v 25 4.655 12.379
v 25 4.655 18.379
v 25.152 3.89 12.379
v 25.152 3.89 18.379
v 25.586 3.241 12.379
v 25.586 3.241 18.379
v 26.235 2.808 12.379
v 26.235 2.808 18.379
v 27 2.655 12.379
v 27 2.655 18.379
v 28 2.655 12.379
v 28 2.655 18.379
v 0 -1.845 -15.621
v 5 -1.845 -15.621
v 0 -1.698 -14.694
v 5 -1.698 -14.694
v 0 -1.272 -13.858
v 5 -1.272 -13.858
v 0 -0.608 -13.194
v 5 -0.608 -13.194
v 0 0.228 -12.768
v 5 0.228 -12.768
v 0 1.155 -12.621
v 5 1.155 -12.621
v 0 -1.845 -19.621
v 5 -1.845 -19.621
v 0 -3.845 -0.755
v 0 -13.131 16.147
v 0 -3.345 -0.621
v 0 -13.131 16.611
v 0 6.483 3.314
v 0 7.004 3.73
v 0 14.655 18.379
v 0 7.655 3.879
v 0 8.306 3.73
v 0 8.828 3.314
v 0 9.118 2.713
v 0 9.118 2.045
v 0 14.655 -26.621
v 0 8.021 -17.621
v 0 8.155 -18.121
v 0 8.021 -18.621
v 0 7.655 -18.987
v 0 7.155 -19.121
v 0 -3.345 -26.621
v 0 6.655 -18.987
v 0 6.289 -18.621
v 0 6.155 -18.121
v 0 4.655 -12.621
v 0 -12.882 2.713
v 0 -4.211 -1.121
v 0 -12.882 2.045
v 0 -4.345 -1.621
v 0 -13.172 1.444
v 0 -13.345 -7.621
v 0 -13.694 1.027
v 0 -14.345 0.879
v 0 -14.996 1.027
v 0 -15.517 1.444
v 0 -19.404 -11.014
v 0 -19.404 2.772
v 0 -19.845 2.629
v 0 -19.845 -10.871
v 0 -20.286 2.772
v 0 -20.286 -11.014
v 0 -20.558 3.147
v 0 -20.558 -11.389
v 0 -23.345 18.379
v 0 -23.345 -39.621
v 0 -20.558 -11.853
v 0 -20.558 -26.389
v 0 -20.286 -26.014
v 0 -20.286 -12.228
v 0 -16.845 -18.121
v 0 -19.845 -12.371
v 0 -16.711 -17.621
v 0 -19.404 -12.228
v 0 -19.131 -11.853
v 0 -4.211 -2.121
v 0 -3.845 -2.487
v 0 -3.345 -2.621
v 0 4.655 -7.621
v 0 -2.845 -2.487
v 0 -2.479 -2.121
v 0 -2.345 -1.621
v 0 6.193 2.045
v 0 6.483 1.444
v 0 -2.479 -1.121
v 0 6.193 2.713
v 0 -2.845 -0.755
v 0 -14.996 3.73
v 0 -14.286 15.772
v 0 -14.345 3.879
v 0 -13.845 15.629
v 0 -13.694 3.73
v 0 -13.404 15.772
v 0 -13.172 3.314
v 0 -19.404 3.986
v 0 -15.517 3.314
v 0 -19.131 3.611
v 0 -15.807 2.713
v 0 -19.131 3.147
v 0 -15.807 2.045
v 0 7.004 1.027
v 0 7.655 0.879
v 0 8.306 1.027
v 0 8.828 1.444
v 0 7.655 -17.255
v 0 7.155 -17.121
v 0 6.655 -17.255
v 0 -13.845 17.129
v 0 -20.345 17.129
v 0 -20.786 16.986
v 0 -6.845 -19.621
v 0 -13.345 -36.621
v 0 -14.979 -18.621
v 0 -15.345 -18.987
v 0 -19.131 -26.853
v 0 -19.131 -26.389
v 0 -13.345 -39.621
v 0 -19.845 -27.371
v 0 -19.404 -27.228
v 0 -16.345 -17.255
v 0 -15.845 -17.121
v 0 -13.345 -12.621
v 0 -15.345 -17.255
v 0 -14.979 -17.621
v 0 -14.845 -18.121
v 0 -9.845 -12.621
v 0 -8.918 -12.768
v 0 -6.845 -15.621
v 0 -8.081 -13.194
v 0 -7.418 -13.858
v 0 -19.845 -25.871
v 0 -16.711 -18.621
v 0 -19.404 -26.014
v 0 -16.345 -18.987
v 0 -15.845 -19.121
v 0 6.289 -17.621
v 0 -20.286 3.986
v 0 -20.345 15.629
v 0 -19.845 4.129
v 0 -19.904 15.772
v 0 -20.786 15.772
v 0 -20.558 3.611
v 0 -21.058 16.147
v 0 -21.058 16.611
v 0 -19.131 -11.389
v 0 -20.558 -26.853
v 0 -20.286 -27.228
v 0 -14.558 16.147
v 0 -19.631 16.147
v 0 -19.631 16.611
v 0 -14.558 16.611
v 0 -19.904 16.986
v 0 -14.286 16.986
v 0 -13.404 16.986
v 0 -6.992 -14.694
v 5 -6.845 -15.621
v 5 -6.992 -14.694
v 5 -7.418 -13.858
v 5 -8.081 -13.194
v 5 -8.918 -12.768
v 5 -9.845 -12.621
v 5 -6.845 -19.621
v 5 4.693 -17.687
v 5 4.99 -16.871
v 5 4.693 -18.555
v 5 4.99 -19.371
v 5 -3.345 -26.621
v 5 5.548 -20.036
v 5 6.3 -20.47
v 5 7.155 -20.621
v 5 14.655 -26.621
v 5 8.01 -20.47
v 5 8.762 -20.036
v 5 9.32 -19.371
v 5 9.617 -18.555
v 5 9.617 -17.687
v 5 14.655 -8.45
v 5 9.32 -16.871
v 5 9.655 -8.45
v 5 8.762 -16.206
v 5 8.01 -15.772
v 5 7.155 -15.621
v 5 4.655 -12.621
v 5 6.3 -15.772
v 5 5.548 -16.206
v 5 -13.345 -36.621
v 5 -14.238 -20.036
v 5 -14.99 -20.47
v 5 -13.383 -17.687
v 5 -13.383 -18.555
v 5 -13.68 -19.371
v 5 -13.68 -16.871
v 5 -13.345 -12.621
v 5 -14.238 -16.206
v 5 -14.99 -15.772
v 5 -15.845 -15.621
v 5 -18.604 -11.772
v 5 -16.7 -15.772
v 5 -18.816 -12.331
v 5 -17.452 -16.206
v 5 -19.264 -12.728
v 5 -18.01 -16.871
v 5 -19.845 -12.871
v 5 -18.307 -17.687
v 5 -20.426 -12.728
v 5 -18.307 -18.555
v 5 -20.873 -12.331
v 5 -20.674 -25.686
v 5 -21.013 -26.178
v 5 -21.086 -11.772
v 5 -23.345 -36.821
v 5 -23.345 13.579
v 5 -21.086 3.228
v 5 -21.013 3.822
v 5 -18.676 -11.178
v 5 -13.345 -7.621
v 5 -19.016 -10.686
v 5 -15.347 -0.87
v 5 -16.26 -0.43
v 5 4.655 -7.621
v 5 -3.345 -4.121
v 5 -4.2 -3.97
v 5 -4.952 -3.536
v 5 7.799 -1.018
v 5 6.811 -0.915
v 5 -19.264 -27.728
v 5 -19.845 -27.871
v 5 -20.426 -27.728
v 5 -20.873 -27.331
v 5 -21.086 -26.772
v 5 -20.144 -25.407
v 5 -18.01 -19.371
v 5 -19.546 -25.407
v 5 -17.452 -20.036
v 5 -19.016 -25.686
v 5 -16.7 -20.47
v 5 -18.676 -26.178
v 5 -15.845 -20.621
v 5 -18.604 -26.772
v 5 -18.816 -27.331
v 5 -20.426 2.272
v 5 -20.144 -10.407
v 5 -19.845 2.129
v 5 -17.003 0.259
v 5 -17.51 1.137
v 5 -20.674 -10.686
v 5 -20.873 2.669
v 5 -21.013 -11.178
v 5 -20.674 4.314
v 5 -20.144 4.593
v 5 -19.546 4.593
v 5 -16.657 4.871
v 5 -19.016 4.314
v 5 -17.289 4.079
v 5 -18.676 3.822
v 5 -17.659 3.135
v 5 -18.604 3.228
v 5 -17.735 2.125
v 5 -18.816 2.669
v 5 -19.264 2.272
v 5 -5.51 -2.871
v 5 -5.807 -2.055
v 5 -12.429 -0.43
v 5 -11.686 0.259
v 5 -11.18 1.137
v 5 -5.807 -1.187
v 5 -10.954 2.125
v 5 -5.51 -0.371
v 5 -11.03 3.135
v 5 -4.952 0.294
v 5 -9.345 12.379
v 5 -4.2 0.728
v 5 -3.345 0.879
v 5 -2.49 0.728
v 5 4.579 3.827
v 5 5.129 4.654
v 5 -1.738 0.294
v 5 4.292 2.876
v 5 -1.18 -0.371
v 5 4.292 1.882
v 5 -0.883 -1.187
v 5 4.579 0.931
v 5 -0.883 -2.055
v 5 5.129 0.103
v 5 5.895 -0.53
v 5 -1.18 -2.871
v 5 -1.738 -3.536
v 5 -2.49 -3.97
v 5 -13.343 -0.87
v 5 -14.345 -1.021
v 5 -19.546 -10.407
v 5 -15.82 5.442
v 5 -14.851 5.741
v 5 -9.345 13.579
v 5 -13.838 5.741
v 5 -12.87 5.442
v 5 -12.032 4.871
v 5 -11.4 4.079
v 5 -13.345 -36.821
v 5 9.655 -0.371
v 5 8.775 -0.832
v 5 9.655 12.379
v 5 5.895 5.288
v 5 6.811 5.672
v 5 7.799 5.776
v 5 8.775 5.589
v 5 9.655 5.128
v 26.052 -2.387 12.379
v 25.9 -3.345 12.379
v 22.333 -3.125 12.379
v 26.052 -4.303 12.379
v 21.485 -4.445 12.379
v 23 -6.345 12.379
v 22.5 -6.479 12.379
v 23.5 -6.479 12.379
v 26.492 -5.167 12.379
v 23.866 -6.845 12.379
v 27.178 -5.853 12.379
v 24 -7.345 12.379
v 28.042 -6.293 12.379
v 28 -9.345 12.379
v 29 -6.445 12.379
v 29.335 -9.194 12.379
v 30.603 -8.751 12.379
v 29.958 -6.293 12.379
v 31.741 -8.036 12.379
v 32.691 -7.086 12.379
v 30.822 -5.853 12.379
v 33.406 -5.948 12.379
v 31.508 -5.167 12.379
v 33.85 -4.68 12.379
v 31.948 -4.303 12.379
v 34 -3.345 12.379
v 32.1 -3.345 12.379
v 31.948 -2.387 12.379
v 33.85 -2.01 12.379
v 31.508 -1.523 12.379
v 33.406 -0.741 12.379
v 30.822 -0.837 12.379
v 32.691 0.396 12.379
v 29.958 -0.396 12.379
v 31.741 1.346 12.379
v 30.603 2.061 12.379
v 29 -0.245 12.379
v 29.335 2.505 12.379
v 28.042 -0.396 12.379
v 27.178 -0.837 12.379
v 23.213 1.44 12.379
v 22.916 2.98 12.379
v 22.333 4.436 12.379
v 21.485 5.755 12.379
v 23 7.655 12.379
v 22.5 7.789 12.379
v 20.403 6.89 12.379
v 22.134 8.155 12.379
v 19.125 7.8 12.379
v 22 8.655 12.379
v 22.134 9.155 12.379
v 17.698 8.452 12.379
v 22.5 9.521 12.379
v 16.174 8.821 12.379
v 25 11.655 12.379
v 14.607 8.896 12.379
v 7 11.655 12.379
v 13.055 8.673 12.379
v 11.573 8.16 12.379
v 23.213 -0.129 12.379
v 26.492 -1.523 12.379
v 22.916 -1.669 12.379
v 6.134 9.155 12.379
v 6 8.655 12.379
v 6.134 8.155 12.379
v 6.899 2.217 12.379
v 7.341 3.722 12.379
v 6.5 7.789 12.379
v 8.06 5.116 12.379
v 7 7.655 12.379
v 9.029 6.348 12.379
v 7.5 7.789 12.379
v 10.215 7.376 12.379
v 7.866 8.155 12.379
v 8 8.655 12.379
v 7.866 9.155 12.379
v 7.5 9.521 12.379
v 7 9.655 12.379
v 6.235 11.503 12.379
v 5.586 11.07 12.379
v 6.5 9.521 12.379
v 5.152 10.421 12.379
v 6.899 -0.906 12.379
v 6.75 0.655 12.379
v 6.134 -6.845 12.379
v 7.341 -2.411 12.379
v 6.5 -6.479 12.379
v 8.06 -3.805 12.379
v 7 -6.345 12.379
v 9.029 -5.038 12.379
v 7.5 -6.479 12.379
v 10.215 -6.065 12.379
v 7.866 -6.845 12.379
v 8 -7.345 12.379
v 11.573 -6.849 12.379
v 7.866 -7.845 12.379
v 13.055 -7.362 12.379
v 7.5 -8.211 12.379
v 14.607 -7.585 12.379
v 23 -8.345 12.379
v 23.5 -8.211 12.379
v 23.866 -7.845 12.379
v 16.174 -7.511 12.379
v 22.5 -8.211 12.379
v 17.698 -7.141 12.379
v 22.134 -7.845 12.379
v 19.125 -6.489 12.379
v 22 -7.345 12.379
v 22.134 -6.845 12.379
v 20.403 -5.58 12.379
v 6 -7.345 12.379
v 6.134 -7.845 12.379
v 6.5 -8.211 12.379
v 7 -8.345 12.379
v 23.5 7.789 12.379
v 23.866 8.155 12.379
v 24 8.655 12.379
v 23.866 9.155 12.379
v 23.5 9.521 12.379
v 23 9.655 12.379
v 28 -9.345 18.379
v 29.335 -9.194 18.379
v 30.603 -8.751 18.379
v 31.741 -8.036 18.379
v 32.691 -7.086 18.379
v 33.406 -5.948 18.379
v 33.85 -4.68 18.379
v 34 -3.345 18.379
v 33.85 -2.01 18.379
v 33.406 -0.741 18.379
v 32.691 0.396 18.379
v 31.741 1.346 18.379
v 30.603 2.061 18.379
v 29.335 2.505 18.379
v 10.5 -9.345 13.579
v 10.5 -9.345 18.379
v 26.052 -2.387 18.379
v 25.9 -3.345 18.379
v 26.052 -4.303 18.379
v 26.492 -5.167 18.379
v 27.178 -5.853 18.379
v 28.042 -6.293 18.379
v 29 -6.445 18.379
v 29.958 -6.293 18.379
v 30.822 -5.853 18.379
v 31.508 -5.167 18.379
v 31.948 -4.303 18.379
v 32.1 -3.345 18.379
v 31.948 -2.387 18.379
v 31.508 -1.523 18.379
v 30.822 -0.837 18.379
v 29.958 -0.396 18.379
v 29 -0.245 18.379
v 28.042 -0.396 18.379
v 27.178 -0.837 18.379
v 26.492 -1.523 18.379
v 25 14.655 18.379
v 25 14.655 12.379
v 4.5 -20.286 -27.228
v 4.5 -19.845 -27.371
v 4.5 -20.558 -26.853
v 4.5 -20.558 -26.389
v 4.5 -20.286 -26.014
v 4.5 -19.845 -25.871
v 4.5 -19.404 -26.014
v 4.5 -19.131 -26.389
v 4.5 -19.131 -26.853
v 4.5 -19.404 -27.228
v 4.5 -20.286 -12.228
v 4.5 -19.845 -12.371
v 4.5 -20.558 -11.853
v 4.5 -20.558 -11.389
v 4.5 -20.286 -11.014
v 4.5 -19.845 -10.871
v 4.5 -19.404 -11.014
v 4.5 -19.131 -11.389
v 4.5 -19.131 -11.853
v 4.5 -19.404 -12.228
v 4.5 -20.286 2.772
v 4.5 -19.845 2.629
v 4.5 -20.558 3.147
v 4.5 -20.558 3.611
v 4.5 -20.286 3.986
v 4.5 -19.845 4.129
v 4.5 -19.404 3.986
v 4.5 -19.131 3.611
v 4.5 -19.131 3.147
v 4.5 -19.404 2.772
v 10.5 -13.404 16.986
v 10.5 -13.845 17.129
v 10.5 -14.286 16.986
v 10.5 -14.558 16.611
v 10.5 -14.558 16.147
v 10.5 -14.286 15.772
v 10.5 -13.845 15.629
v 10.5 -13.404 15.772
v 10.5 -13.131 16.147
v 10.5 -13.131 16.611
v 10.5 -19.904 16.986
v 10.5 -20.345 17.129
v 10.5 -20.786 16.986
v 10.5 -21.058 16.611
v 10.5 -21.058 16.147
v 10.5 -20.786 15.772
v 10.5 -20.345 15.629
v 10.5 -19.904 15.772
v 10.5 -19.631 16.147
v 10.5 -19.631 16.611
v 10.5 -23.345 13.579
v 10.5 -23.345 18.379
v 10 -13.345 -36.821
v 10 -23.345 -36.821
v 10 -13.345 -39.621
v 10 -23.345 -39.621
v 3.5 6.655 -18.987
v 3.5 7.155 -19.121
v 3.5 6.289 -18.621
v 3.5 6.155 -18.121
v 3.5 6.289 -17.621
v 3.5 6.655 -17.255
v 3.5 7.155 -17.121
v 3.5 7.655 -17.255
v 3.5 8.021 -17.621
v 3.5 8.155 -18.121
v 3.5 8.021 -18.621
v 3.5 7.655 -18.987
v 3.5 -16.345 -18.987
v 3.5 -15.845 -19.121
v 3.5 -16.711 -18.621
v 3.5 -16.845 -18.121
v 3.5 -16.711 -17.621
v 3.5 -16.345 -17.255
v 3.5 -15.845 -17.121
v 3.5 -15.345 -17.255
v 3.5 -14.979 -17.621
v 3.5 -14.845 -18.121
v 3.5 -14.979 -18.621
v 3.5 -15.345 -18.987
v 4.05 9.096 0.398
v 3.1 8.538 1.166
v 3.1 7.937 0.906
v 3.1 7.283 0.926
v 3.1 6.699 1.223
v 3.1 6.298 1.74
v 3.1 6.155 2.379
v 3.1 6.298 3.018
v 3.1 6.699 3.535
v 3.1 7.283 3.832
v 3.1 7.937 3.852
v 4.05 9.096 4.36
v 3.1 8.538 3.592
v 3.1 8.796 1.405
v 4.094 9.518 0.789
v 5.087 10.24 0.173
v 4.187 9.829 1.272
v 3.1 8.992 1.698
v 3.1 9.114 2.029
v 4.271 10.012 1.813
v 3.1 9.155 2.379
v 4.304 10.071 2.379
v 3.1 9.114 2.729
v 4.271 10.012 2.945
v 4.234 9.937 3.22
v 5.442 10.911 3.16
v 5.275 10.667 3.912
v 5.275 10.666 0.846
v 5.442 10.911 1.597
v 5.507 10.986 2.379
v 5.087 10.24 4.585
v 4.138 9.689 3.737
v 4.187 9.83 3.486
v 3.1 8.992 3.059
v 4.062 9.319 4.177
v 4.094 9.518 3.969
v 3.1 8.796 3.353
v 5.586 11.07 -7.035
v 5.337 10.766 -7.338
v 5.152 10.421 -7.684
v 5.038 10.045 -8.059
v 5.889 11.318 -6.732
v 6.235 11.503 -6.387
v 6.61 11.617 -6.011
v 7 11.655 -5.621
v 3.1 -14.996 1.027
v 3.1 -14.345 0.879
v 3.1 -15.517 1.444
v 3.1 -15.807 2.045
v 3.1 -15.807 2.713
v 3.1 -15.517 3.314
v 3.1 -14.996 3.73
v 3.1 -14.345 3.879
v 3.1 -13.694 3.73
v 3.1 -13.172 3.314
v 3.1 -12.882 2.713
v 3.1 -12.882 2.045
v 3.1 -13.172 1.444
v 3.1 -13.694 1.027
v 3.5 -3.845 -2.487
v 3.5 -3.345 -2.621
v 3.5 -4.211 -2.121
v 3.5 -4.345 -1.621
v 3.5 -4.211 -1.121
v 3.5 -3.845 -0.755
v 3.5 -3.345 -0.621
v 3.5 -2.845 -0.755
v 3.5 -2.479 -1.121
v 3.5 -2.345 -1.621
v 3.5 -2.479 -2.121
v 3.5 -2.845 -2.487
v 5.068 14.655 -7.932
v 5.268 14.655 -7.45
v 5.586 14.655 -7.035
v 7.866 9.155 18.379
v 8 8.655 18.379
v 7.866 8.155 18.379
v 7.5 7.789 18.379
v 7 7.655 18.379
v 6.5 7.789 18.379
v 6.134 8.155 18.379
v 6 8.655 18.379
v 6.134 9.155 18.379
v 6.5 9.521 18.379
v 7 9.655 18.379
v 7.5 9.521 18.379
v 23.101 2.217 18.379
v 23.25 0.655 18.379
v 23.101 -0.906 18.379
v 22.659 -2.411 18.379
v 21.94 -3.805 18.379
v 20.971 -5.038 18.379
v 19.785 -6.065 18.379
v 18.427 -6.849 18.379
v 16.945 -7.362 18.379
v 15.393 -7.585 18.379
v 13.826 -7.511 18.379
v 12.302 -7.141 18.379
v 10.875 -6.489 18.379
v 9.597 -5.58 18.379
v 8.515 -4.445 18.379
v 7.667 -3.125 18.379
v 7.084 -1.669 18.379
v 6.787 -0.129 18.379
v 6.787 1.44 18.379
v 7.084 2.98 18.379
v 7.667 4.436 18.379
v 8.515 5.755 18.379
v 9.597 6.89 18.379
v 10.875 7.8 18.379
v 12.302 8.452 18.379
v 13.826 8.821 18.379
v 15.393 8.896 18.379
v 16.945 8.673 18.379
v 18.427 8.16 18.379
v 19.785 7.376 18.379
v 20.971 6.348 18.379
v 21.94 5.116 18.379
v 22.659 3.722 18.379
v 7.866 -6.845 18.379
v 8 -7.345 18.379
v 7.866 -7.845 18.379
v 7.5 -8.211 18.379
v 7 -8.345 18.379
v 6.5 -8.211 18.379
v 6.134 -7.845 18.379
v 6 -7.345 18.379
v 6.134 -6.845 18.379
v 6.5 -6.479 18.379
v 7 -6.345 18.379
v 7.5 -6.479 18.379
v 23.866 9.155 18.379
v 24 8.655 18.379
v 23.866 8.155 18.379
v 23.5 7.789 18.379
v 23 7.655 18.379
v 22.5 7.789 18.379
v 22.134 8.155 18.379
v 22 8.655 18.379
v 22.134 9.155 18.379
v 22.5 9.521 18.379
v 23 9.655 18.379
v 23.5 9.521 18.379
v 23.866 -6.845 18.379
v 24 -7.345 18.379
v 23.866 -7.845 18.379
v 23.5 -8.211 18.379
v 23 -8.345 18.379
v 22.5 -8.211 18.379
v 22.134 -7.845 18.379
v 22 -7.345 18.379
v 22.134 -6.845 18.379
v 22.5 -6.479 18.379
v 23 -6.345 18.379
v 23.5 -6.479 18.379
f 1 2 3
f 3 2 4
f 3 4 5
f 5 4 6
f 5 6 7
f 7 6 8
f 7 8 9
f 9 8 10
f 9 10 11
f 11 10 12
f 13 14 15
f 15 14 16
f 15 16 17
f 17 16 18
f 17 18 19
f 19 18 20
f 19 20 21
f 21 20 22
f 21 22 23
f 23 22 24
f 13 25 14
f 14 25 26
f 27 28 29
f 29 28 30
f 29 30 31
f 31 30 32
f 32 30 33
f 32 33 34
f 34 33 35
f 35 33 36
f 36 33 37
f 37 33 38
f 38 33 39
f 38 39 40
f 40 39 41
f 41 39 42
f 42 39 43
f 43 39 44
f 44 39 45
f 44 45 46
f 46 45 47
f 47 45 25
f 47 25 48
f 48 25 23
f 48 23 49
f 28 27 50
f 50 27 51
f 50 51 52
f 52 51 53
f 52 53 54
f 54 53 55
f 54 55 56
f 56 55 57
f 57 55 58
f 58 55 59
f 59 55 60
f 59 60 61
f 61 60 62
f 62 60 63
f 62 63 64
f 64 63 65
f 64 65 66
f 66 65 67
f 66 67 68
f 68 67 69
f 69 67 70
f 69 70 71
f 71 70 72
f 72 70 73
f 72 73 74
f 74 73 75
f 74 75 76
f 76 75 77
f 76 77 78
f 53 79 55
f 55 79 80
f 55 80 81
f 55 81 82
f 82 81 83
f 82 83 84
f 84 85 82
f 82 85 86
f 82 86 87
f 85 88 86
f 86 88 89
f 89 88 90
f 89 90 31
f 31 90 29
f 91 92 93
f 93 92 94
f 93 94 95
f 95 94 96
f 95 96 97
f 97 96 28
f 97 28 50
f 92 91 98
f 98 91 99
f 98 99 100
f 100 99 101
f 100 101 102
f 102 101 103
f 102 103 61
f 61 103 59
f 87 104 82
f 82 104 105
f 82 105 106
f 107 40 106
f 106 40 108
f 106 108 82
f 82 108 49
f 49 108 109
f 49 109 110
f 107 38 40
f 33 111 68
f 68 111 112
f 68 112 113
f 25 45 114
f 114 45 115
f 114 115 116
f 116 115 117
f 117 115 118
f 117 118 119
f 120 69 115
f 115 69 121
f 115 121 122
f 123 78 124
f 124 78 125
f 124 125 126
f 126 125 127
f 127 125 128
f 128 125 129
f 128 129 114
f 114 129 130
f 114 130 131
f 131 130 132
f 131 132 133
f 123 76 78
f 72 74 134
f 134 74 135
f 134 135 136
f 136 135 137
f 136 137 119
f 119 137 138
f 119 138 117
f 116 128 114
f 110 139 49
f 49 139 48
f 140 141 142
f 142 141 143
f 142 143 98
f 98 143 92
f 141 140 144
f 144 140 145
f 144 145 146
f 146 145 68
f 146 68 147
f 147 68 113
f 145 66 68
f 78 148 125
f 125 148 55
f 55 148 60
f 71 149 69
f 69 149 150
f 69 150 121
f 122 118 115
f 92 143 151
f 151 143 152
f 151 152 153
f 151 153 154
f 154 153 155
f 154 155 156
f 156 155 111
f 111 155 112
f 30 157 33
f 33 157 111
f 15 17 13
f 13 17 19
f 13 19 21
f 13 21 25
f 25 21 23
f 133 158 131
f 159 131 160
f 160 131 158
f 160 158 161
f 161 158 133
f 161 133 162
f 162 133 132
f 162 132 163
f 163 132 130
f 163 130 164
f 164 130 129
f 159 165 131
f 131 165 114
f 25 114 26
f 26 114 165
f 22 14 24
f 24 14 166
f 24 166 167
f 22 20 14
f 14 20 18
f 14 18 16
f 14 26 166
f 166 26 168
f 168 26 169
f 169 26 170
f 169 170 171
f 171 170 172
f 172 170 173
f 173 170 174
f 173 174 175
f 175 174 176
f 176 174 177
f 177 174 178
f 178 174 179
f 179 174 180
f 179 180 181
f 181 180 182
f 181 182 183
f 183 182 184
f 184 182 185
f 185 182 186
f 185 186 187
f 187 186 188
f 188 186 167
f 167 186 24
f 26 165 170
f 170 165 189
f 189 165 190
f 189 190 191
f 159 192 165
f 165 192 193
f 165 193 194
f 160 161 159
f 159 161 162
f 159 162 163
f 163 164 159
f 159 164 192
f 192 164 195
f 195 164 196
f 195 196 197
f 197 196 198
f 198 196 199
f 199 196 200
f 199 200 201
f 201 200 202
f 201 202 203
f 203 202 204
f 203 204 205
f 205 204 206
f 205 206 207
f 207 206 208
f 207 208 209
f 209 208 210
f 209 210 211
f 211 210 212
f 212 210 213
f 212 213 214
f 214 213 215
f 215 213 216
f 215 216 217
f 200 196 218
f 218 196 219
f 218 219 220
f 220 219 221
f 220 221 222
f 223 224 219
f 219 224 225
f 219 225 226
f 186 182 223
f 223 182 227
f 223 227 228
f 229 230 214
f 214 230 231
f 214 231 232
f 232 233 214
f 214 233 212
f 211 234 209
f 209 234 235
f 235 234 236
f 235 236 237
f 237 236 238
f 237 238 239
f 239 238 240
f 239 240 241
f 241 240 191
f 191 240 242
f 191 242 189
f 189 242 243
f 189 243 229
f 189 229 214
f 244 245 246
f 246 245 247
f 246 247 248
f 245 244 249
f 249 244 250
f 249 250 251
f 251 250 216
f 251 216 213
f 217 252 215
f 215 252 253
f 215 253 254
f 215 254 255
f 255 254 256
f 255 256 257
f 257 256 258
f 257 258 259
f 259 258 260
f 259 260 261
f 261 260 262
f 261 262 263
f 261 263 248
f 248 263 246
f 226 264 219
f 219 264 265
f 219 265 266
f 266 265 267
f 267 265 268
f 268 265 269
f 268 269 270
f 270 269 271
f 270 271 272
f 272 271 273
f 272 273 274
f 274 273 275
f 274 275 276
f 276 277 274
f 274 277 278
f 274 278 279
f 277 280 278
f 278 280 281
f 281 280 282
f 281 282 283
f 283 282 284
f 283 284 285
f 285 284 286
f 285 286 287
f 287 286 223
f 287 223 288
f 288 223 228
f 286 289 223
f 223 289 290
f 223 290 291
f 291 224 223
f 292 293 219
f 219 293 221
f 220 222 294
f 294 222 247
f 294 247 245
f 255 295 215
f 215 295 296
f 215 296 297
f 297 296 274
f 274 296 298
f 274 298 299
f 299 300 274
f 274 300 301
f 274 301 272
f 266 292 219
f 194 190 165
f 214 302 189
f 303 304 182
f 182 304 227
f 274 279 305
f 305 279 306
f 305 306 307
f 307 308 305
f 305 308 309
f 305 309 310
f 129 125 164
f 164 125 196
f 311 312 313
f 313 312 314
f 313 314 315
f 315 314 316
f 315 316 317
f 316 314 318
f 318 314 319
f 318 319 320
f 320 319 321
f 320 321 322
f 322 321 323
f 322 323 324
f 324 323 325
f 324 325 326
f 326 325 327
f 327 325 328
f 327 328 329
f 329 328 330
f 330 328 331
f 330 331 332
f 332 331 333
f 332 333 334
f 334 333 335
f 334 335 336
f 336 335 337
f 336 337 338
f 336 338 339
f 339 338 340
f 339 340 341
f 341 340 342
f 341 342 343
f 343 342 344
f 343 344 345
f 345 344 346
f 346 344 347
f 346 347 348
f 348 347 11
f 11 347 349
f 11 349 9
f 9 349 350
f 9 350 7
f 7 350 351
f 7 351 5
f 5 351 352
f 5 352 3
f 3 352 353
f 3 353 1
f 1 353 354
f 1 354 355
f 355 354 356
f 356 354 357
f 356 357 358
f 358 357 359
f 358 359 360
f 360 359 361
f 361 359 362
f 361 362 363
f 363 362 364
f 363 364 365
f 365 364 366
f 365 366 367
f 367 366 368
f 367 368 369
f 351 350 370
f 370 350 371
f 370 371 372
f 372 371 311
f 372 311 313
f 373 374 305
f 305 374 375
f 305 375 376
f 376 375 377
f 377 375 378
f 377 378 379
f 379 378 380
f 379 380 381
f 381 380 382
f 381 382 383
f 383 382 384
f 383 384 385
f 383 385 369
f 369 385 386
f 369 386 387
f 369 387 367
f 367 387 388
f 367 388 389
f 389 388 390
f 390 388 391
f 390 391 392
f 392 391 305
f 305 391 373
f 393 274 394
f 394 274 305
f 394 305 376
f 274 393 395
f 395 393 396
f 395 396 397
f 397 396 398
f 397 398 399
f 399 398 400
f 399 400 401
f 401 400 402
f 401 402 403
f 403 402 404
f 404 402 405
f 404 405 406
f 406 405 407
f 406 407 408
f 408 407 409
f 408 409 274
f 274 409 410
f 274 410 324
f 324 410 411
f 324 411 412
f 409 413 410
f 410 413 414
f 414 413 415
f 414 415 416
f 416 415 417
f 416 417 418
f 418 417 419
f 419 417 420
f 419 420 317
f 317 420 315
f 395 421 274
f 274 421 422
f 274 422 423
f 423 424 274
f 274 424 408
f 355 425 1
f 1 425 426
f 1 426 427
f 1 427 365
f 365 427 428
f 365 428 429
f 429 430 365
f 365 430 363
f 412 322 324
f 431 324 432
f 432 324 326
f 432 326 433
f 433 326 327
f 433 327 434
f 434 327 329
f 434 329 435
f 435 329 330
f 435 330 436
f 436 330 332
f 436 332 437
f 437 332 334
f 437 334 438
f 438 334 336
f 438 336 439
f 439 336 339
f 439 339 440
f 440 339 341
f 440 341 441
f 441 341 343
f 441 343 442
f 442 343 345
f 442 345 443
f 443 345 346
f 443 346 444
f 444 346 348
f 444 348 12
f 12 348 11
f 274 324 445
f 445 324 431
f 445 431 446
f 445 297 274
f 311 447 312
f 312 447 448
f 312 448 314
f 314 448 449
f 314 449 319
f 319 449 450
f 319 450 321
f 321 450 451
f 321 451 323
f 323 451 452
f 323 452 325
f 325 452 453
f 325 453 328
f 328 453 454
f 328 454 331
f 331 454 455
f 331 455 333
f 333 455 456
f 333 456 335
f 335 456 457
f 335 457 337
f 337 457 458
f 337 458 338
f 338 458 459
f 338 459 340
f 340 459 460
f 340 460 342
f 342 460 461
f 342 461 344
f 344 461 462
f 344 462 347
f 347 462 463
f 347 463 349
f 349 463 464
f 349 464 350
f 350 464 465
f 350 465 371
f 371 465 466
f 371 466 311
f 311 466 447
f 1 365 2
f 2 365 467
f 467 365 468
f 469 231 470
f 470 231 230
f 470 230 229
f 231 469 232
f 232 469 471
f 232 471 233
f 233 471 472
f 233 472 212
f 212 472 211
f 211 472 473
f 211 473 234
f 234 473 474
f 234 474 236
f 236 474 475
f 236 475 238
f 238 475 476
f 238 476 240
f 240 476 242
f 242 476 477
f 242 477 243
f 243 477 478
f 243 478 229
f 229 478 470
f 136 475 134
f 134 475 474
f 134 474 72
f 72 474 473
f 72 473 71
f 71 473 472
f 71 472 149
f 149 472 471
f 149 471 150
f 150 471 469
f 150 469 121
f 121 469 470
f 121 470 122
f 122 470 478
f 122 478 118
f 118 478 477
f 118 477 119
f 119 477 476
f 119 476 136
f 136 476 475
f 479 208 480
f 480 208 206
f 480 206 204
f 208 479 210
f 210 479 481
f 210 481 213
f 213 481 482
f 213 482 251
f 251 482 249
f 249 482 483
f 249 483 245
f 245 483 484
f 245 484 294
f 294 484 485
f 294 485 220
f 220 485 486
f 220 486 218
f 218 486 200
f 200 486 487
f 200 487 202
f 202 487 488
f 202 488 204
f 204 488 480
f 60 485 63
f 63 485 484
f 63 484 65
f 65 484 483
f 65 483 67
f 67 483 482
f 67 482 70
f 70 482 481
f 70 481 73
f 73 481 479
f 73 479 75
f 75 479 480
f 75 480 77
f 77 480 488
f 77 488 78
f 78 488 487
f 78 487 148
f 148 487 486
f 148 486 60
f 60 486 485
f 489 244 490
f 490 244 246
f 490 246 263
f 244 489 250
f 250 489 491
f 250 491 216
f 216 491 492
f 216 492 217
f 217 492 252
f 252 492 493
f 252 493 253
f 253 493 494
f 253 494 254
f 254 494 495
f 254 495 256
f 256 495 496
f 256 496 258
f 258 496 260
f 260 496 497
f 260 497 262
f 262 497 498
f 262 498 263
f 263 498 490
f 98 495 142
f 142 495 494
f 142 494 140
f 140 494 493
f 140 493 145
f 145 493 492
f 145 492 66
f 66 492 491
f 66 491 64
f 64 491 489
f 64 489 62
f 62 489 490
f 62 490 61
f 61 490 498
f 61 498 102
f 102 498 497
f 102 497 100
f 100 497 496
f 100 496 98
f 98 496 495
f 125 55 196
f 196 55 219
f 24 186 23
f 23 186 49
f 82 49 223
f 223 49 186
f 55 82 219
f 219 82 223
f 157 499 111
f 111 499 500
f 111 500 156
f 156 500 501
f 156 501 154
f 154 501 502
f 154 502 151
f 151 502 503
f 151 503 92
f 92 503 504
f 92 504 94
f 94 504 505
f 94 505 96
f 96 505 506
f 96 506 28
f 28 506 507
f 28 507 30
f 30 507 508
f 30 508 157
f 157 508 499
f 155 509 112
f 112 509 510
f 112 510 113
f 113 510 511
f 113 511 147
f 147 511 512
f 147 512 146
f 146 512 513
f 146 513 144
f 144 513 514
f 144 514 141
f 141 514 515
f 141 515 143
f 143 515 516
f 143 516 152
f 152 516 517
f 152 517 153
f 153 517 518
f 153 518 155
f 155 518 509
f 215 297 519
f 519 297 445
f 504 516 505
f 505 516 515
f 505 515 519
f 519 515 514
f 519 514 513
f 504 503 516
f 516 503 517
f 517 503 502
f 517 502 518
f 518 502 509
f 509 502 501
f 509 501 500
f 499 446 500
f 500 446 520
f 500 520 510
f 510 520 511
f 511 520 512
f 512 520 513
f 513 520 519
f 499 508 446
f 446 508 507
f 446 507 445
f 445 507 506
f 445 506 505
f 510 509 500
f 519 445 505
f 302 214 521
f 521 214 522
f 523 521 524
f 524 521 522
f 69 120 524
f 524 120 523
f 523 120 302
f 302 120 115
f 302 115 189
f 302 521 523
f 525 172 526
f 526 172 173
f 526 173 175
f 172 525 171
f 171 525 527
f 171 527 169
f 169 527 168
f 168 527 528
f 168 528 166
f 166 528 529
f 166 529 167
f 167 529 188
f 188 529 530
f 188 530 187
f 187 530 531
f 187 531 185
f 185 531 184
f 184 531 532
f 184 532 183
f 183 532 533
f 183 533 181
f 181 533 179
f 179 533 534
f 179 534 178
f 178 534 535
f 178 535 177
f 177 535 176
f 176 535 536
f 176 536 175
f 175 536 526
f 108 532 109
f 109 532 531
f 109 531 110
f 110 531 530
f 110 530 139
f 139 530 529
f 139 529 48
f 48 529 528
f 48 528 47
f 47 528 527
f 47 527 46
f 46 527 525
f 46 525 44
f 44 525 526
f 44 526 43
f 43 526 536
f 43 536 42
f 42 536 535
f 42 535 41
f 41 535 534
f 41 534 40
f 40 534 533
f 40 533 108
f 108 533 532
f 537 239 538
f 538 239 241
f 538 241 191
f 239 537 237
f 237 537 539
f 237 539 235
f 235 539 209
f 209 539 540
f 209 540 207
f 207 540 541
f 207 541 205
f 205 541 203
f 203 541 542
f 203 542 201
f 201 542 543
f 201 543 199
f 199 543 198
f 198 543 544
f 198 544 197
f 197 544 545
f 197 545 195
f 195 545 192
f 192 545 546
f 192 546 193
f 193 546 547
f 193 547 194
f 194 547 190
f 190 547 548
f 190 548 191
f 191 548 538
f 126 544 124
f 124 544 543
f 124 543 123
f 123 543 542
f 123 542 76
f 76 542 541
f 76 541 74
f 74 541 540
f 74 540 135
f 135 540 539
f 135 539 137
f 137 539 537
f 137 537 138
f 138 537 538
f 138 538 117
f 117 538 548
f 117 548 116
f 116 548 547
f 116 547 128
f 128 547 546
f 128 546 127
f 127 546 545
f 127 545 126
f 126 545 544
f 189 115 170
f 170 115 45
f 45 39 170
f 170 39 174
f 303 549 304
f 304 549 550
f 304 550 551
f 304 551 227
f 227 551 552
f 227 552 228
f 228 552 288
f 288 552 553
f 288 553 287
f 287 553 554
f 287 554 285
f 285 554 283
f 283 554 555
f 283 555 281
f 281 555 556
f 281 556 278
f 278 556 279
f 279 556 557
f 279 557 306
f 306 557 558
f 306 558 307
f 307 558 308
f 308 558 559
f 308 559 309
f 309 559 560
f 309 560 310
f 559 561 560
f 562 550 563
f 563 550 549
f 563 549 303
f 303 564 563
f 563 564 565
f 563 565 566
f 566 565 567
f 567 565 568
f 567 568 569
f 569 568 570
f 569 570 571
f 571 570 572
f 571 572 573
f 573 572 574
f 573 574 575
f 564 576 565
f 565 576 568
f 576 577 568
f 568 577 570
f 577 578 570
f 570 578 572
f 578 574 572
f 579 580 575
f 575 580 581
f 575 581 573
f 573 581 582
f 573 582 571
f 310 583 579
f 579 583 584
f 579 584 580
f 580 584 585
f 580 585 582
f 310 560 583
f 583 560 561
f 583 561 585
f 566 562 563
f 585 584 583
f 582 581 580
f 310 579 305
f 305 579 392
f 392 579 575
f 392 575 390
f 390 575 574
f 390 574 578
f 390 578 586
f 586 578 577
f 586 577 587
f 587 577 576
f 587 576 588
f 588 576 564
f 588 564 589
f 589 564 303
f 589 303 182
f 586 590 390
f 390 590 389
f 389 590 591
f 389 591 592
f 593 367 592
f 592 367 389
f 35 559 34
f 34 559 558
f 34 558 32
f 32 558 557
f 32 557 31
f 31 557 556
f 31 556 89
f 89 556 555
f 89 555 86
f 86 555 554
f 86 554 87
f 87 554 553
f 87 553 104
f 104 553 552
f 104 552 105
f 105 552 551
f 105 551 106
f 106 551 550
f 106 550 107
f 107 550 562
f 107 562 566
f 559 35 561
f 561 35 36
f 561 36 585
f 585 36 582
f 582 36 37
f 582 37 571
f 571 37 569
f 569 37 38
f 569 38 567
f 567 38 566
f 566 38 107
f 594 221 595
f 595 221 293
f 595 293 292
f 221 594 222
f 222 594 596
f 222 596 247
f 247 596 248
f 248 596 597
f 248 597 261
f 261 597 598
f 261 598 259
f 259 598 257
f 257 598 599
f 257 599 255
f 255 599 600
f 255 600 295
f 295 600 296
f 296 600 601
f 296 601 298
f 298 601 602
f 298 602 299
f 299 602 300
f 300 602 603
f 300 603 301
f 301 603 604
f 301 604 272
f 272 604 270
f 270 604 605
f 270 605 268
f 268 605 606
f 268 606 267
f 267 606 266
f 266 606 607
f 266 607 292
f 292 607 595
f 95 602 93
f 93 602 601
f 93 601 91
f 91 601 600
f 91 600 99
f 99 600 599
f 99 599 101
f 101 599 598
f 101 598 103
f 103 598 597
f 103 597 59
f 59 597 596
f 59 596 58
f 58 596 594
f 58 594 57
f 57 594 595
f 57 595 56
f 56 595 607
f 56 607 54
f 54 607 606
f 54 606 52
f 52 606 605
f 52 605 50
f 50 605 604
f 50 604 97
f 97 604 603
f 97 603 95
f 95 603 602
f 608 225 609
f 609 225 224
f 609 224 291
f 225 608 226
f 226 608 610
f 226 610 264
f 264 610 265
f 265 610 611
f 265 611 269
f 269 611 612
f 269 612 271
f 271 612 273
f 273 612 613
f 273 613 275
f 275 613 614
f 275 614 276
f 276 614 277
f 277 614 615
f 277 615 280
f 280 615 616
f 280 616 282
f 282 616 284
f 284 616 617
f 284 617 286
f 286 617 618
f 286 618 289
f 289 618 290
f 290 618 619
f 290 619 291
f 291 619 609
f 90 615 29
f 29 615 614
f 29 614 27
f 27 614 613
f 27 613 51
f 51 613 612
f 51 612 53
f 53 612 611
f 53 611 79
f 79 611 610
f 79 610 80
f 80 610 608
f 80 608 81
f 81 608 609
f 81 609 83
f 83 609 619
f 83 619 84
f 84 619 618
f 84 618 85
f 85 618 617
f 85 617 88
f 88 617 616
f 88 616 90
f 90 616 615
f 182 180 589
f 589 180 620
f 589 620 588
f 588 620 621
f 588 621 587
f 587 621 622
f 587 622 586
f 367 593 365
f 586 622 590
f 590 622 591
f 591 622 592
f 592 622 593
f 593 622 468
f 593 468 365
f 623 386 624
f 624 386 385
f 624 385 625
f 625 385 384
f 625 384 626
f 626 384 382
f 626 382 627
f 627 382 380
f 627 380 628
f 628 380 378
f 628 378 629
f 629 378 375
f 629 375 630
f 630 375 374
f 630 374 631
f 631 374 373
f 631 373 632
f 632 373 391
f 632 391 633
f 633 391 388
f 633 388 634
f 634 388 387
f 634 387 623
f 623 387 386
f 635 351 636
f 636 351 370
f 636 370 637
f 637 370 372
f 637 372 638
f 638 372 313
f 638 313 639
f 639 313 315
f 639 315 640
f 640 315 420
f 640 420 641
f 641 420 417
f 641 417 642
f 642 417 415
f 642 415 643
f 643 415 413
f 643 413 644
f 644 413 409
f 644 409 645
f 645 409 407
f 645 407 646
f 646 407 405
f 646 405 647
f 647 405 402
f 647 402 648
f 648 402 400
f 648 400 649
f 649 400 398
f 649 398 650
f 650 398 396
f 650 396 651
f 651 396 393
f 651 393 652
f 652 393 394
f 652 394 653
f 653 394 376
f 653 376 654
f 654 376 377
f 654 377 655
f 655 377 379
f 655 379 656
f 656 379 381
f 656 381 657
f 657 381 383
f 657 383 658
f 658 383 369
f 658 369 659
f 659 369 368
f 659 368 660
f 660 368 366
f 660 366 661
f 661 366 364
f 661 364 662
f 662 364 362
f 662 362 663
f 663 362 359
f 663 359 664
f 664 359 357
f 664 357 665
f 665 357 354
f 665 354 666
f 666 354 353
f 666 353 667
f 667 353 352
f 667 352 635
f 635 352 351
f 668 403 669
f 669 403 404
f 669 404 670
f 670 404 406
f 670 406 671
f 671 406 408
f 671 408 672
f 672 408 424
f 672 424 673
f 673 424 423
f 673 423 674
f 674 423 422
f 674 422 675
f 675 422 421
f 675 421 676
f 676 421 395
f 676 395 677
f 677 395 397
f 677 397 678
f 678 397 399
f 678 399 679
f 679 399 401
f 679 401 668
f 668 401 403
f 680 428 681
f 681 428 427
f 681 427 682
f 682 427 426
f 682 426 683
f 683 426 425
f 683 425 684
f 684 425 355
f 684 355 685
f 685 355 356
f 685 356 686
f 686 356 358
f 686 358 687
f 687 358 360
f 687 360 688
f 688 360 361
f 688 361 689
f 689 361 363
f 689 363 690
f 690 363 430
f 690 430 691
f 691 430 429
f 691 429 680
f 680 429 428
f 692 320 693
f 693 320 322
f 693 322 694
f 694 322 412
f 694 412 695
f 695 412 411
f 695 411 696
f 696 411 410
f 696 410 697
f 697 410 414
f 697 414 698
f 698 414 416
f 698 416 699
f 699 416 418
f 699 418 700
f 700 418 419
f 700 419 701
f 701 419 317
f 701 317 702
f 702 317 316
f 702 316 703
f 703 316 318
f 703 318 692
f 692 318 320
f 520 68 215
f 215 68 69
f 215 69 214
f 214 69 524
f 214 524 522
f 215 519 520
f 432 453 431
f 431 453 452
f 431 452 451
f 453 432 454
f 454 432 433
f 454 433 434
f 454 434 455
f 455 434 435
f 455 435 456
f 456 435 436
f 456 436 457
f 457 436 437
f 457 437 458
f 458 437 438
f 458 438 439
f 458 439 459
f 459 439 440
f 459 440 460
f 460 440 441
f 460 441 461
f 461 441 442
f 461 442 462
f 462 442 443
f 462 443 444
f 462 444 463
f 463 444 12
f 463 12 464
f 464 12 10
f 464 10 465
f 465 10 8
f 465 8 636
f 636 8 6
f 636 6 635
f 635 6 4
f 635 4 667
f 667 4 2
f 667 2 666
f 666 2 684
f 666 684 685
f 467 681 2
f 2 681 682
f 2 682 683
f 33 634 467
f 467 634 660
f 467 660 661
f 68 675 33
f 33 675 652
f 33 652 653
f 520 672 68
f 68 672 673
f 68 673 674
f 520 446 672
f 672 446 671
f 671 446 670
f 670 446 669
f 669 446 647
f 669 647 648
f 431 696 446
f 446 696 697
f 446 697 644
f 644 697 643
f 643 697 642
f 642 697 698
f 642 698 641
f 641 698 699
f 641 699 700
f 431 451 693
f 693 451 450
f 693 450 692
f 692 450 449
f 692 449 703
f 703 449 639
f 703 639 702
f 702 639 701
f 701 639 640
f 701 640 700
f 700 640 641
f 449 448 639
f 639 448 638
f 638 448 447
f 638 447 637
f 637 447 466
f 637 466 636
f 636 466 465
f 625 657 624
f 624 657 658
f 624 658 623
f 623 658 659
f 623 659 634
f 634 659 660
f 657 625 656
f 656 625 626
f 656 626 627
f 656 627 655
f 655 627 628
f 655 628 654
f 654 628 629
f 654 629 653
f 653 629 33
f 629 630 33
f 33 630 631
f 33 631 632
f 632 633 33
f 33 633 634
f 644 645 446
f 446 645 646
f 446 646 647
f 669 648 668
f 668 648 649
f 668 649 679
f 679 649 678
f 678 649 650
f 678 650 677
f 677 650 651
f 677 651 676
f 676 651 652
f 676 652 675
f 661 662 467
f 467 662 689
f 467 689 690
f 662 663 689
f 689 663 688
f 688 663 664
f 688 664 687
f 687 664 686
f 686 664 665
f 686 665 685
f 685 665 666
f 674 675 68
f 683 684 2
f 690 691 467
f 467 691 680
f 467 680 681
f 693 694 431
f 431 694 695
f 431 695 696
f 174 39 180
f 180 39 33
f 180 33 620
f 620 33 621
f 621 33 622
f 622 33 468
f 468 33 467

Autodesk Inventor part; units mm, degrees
ref_plane "YZ Plane" through (0, 0, 0) normal (1, 0, 0) x (0, 1, 0)
ref_plane "XZ Plane" through (0, 0, 0) normal (0, 1, 0) x (-1, 0, 0)
ref_plane "XY Plane" through (0, 0, 0) normal (0, 0, 1) x (1, 0, 0)
sketch "Sketch1" plane through (0, 0, 0) normal (1, 0, 0) x (0, 1, 0)
  line L0 (-23.3447, 18.3788) -> (14.6553, 18.3788)
  line L1 (14.6553, 18.3788) -> (14.6553, -36.6212)
  line L2 (14.6553, -36.6212) -> (-23.3447, -36.6212)
  line L3 (-23.3447, -36.6212) -> (-23.3447, 18.3788)
  point P0 (0, 0)
  dimension "d0" = 38
  dimension "d1" = 55
extrude "Extrusion1" add sketch "Sketch1" along normal blind 5
sketch "Sketch2" plane through (5, 0, 0) normal (1, 0, 0) x (0, 0, -1)
  line L0 (36.6212, 14.6553) -> (-18.3788, 14.6553) projected
  line L1 (-18.3788, 14.6553) -> (-12.3788, 14.6553)
  line L2 (-12.3788, 14.6553) -> (-12.3788, -9.3447)
  line L3 (-12.3788, -9.3447) -> (-18.3788, -9.3447)
  line L4 (-18.3788, -9.3447) -> (-18.3788, 14.6553)
  point P0 (0, 0)
  dimension "d4" = 24
  dimension "d5" = 6
extrude "Extrusion2" add sketch "Sketch2" along normal blind 20
sketch "Sketch3" plane through (5, -9.3447, 12.3788) normal (0, 0, -1) x (-1, 0, 0)
  circle A0 centre (-10, 10) radius 8.25
  line L0 (-20, 0) -> (-20, 24) projected
  line L1 (0, 0) -> (-20, 0) projected
  circle A1 centre (-18, 2) radius 1
  circle A2 centre (-18, 18) radius 1
  circle A3 centre (-2, 2) radius 1
  circle A4 centre (-2, 18) radius 1
  point P0 (5, 9.3447)
  dimension "d8" = 16.5
  dimension "d9" = 10
  dimension "d10" = 10
  dimension "d11" = 2
  dimension "d12" = 2
  dimension "d13" = 2
  dimension "d14" = 2
  dimension "d15" = 8
  dimension "d16" = 8
  dimension "d17" = 8
  dimension "d18" = 8
  dimension "d19" = 8
  dimension "d20" = 8
  dimension "d21" = 8
  dimension "d22" = 8
extrude "Extrusion3" cut sketch "Sketch3" against normal through all
sketch "Sketch4" plane through (5, -9.3447, 12.3788) normal (0, 0, -1) x (-1, 0, 0)
  line L0 (-20, 24) -> (-20, 0) projected
  line L1 (0, 24) -> (0, 0) projected
  line L2 (-20, 24) -> (0, 24)
  line L3 (0, 24) -> (0, 21)
  line L4 (0, 21) -> (-20, 21)
  line L5 (-20, 21) -> (-20, 24)
  point P0 (5, 9.3447)
  dimension "d25" = 3
extrude "Extrusion4" add sketch "Sketch4" along normal blind 20
sketch "Sketch5" plane through (5, 11.6553, 12.3788) normal (0, -1, 0) x (1, 0, 0)
  line L0 (0, -20) -> (0, 0) projected
  line L1 (20, 6) -> (20, 0) projected
  line L2 (0, -20) -> (20, 0)
  line L3 (20, 0) -> (20, -20)
  line L4 (20, -20) -> (0, -20) projected
  line L5 (20, -20) -> (0, -20)
  point P0 (-5, -12.3788)
extrude "Extrusion5" cut sketch "Sketch5" against normal through all
fillet "Fillet1" radius 2 2 edges at (5, 11.6553, 2.3788) (5, 13.1553, -7.6212)
sketch "Sketch6" plane through (5, 0, 0) normal (1, 0, 0) x (0, 0, -1)
  circle A0 centre (1.6212, -3.3447) radius 1
  line L0 (36.6212, 14.6553) -> (8.4496, 14.6553) projected
  line L1 (36.6212, -23.3447) -> (36.6212, 14.6553) projected
  point P0 (0, 0)
  dimension "d31" = 2
  dimension "d32" = 18
  dimension "d33" = 35
extrude "Extrusion6" cut sketch "Sketch6" against normal through all
sketch "Sketch7" plane through (5, 0, 0) normal (1, 0, 0) x (0, 0, -1)
  circle A0 centre (-2.3788, -14.3447) radius 1.5
  circle A1 centre (-2.3788, 7.6553) radius 1.5
  circle A2 centre (1.6212, -3.3447) radius 1 projected
  point P0 (0, 0)
  dimension "d36" = 3
  dimension "d37" = 3
  dimension "d38" = 4
  dimension "d39" = 11
  dimension "d40" = 11
  dimension "d41" = 4
extrude "Extrusion7" cut sketch "Sketch7" against normal through all contours A0 | A1
chamfer "Chamfer1" distance 1.5 angle 45 1 edges at (5, -3.3447, -0.6212)
chamfer "Chamfer2" distance 1.9 angle 45 2 edges at (5, -14.3447, 3.8788) (5, 7.6553, 3.8788)
sketch "Sketch8" plane through (5, 0, 0) normal (1, 0, 0) x (0, 0, -1)
  line L0 (36.6212, 14.6553) -> (-18.3788, 14.6553) projected
  line L1 (36.6212, 14.6553) -> (26.6212, 14.6553)
  line L2 (26.6212, 14.6553) -> (26.6212, -13.3447)
  line L3 (26.6212, -13.3447) -> (36.6212, -13.3447)
  line L4 (36.6212, -13.3447) -> (36.6212, 14.6553)
  point P0 (0, 0)
  dimension "d50" = 28
  dimension "d51" = 10
extrude "Extrusion8" cut sketch "Sketch8" against normal through all
chamfer "Chamfer3" distance 10 angle 45 1 edges at (2.5, -13.3447, -26.6212)
sketch "Sketch9" plane through (5, 0, 0) normal (1, 0, 0) x (0, 0, -1)
  circle A0 centre (18.1212, -15.8447) radius 1
  circle A1 centre (18.1212, 7.1553) radius 1
  line L0 (26.6212, 14.6553) -> (8.4496, 14.6553) projected
  line L1 (36.6212, -23.3447) -> (36.6212, -13.3447) projected
  line L2 (-18.3788, -23.3447) -> (36.6212, -23.3447) projected
  point P0 (0, 0)
  dimension "d57" = 2
  dimension "d58" = 2
  dimension "d59" = 7.5
  dimension "d60" = 18.5
  dimension "d61" = 7.5
  dimension "d62" = 18.5
extrude "Extrusion9" cut sketch "Sketch9" against normal through all
chamfer "Chamfer4" distance 1.5 angle 45 2 edges at (5, -15.8447, -17.1212) (5, 7.1553, -17.1212)
sketch "Sketch10" plane through (5, 0, 0) normal (1, 0, 0) x (0, 0, -1)
  circle A0 centre (26.6212, -19.8447) radius 0.75
  circle A1 centre (11.6212, -19.8447) radius 0.75
  circle A2 centre (-3.3788, -19.8447) radius 0.75
  line L0 (-18.3788, -23.3447) -> (36.6212, -23.3447) projected
  line L1 (36.6212, -23.3447) -> (36.6212, -13.3447) projected
  line L2 (-18.3788, -9.3447) -> (-18.3788, -23.3447) projected
  point P0 (0, 0)
  dimension "d68" = 1.5
  dimension "d69" = 1.5
  dimension "d70" = 1.5
  dimension "d71" = 3.5
  dimension "d72" = 10
  dimension "d73" = 3.5
  dimension "d74" = 15
  dimension "d76" = 3.5
  dimension "d95" = 15
extrude "Extrusion10" cut sketch "Sketch10" against normal through all
sketch "Sketch15" plane through (5, 0, 0) normal (1, 0, 0) x (0, 0, -1)
  line L0 (36.6212, -23.3447) -> (36.6212, -13.3447) projected
  line L1 (36.6212, -23.3447) -> (39.6212, -23.3447)
  line L2 (39.6212, -23.3447) -> (39.6212, -13.3447)
  line L3 (39.6212, -13.3447) -> (36.6212, -13.3447)
  line L4 (36.6212, -13.3447) -> (36.6212, -23.3447)
  point P0 (0, 0)
  dimension "d96" = 3
  dimension "d97" = 10
extrude "Extrusion15" add sketch "Sketch15" against normal up to surface (5 mm away)
sketch "Sketch16" plane through (5, 0, 0) normal (1, 0, 0) x (0, 0, -1)
  line L0 (-18.3788, -23.3447) -> (39.6212, -23.3447) projected
  line L1 (39.6212, -13.3447) -> (36.6212, -13.3447) projected
  line L2 (39.6212, -23.3447) -> (36.8212, -23.3447)
  line L3 (36.8212, -23.3447) -> (36.8212, -13.3447)
  line L4 (36.8212, -13.3447) -> (39.6212, -13.3447)
  line L5 (39.6212, -13.3447) -> (39.6212, -23.3447)
  point P0 (0, 0)
  dimension "d100" = 2.8
extrude "Extrusion16" add sketch "Sketch16" along normal blind 5
sketch "Sketch17" plane through (5, 0, 0) normal (1, 0, 0) x (0, 0, -1)
  line L0 (-18.3788, -23.3447) -> (39.6212, -23.3447) projected
  line L1 (-12.3788, -9.3447) -> (-18.3788, -9.3447) projected
  line L2 (-18.3788, -23.3447) -> (-13.5788, -23.3447)
  line L3 (-13.5788, -23.3447) -> (-13.5788, -9.3447)
  line L4 (-13.5788, -9.3447) -> (-18.3788, -9.3447)
  line L5 (-18.3788, -9.3447) -> (-18.3788, -23.3447)
  point P0 (0, 0)
  dimension "d103" = 4.8
extrude "Extrusion17" add sketch "Sketch17" along normal blind 5.5
sketch "Sketch18" plane through (10.5, 0, 0) normal (1, 0, 0) x (0, 0, -1)
  circle A0 centre (-16.3788, -20.3447) radius 0.75
  circle A1 centre (-16.3788, -13.8447) radius 0.75
  line L0 (-18.3788, -23.3447) -> (-13.5788, -23.3447) projected
  line L1 (-18.3788, -9.3447) -> (-18.3788, -23.3447) projected
  point P0 (0, 0)
  point P1 (-15.9788, -23.3447)
  dimension "d106" = 1.5
  dimension "d107" = 1.5
  dimension "d108" = 6.5
  dimension "d109" = 3
  dimension "d110" = 2
  dimension "d111" = 2
extrude "Extrusion18" cut sketch "Sketch18" against normal through all
sketch "Sketch19" plane through (5, 0, 0) normal (1, 0, 0) x (0, 0, -1)
  line L0 (7.6212, -13.3447) -> (12.6212, -13.3447)
  line L1 (12.6212, -13.3447) -> (12.6212, 4.6553)
  line L2 (12.6212, 4.6553) -> (7.6212, 4.6553)
  line L3 (7.6212, 4.6553) -> (7.6212, -13.3447)
  line L4 (26.6212, 14.6553) -> (8.4496, 14.6553) projected
  line L5 (-13.5788, -23.3447) -> (36.8212, -23.3447) projected
  line L6 (26.6212, -3.3447) -> (26.6212, 14.6553) projected
  point P0 (0, 0)
  dimension "d114" = 5
  dimension "d115" = 10
  dimension "d116" = 10
  dimension "d117" = 14
extrude "Extrusion19" cut sketch "Sketch19" against normal through all
chamfer "Chamfer5" distance 0.5 angle 45 3 edges at (5, -19.8447, 4.1288) (5, -19.8447, -10.8712) (5, -19.8447, -25.8712)
sketch "Sketch20" plane through (25, 0, 0) normal (1, 0, 0) x (0, 0, -1)
  line L0 (-12.3788, -9.3447) -> (-13.5788, -9.3447) projected
  line L1 (-18.3788, 14.6553) -> (-18.3788, -9.3447) projected
  line L2 (-12.3788, -9.3447) -> (-18.3788, -9.3447)
  line L3 (-18.3788, -9.3447) -> (-18.3788, 2.6553)
  line L4 (-18.3788, 2.6553) -> (-12.3788, 2.6553)
  line L5 (-12.3788, 2.6553) -> (-12.3788, -9.3447)
  point P0 (0, 0)
  dimension "d123" = 12
extrude "Extrusion20" add sketch "Sketch20" along normal blind 9
sketch "Sketch21" plane through (0, -23.3447, 18.3788) normal (0, 0, 1) x (1, 0, 0)
  circle A0 centre (29, 20) radius 3.1
  line L0 (25, 26) -> (34, 26) projected
  line L1 (34, 26) -> (34, 14) projected
  point P0 (0, 23.3447)
  dimension "d126" = 6.2
  dimension "d127" = 6
  dimension "d128" = 5
extrude "Extrusion21" cut sketch "Sketch21" against normal through all
fillet "Fillet3" radius 6 2 edges at (34, -9.3447, 15.3788) (34, 2.6553, 15.3788)
sketch "Sketch22" plane through (5, 0, 0) normal (1, 0, 0) x (0, 0, -1)
  line L0 (12.6212, -13.3447) -> (12.6212, 4.6553) projected
  line L1 (12.6212, -6.8447) -> (19.6212, -6.8447)
  line L2 (19.6212, -6.8447) -> (19.6212, -1.8447)
  line L3 (19.6212, -1.8447) -> (12.6212, -1.8447)
  line L4 (12.6212, -1.8447) -> (12.6212, -6.8447)
  line L5 (7.6212, 4.6553) -> (12.6212, 4.6553) projected
  point P0 (0, 0)
  dimension "d134" = 5
  dimension "d135" = 6.5
  dimension "d136" = 7
extrude "Extrusion22" cut sketch "Sketch22" against normal through all
fillet "Fillet5" radius 3 2 edges at (2.5, -6.8447, -12.6212) (2.5, -1.8447, -12.6212)
fillet "Fillet6" radius 2 1 edges at (25, 2.6553, 15.3788)
properties part number "Z_motor_holder" material "ABS Plastic"
